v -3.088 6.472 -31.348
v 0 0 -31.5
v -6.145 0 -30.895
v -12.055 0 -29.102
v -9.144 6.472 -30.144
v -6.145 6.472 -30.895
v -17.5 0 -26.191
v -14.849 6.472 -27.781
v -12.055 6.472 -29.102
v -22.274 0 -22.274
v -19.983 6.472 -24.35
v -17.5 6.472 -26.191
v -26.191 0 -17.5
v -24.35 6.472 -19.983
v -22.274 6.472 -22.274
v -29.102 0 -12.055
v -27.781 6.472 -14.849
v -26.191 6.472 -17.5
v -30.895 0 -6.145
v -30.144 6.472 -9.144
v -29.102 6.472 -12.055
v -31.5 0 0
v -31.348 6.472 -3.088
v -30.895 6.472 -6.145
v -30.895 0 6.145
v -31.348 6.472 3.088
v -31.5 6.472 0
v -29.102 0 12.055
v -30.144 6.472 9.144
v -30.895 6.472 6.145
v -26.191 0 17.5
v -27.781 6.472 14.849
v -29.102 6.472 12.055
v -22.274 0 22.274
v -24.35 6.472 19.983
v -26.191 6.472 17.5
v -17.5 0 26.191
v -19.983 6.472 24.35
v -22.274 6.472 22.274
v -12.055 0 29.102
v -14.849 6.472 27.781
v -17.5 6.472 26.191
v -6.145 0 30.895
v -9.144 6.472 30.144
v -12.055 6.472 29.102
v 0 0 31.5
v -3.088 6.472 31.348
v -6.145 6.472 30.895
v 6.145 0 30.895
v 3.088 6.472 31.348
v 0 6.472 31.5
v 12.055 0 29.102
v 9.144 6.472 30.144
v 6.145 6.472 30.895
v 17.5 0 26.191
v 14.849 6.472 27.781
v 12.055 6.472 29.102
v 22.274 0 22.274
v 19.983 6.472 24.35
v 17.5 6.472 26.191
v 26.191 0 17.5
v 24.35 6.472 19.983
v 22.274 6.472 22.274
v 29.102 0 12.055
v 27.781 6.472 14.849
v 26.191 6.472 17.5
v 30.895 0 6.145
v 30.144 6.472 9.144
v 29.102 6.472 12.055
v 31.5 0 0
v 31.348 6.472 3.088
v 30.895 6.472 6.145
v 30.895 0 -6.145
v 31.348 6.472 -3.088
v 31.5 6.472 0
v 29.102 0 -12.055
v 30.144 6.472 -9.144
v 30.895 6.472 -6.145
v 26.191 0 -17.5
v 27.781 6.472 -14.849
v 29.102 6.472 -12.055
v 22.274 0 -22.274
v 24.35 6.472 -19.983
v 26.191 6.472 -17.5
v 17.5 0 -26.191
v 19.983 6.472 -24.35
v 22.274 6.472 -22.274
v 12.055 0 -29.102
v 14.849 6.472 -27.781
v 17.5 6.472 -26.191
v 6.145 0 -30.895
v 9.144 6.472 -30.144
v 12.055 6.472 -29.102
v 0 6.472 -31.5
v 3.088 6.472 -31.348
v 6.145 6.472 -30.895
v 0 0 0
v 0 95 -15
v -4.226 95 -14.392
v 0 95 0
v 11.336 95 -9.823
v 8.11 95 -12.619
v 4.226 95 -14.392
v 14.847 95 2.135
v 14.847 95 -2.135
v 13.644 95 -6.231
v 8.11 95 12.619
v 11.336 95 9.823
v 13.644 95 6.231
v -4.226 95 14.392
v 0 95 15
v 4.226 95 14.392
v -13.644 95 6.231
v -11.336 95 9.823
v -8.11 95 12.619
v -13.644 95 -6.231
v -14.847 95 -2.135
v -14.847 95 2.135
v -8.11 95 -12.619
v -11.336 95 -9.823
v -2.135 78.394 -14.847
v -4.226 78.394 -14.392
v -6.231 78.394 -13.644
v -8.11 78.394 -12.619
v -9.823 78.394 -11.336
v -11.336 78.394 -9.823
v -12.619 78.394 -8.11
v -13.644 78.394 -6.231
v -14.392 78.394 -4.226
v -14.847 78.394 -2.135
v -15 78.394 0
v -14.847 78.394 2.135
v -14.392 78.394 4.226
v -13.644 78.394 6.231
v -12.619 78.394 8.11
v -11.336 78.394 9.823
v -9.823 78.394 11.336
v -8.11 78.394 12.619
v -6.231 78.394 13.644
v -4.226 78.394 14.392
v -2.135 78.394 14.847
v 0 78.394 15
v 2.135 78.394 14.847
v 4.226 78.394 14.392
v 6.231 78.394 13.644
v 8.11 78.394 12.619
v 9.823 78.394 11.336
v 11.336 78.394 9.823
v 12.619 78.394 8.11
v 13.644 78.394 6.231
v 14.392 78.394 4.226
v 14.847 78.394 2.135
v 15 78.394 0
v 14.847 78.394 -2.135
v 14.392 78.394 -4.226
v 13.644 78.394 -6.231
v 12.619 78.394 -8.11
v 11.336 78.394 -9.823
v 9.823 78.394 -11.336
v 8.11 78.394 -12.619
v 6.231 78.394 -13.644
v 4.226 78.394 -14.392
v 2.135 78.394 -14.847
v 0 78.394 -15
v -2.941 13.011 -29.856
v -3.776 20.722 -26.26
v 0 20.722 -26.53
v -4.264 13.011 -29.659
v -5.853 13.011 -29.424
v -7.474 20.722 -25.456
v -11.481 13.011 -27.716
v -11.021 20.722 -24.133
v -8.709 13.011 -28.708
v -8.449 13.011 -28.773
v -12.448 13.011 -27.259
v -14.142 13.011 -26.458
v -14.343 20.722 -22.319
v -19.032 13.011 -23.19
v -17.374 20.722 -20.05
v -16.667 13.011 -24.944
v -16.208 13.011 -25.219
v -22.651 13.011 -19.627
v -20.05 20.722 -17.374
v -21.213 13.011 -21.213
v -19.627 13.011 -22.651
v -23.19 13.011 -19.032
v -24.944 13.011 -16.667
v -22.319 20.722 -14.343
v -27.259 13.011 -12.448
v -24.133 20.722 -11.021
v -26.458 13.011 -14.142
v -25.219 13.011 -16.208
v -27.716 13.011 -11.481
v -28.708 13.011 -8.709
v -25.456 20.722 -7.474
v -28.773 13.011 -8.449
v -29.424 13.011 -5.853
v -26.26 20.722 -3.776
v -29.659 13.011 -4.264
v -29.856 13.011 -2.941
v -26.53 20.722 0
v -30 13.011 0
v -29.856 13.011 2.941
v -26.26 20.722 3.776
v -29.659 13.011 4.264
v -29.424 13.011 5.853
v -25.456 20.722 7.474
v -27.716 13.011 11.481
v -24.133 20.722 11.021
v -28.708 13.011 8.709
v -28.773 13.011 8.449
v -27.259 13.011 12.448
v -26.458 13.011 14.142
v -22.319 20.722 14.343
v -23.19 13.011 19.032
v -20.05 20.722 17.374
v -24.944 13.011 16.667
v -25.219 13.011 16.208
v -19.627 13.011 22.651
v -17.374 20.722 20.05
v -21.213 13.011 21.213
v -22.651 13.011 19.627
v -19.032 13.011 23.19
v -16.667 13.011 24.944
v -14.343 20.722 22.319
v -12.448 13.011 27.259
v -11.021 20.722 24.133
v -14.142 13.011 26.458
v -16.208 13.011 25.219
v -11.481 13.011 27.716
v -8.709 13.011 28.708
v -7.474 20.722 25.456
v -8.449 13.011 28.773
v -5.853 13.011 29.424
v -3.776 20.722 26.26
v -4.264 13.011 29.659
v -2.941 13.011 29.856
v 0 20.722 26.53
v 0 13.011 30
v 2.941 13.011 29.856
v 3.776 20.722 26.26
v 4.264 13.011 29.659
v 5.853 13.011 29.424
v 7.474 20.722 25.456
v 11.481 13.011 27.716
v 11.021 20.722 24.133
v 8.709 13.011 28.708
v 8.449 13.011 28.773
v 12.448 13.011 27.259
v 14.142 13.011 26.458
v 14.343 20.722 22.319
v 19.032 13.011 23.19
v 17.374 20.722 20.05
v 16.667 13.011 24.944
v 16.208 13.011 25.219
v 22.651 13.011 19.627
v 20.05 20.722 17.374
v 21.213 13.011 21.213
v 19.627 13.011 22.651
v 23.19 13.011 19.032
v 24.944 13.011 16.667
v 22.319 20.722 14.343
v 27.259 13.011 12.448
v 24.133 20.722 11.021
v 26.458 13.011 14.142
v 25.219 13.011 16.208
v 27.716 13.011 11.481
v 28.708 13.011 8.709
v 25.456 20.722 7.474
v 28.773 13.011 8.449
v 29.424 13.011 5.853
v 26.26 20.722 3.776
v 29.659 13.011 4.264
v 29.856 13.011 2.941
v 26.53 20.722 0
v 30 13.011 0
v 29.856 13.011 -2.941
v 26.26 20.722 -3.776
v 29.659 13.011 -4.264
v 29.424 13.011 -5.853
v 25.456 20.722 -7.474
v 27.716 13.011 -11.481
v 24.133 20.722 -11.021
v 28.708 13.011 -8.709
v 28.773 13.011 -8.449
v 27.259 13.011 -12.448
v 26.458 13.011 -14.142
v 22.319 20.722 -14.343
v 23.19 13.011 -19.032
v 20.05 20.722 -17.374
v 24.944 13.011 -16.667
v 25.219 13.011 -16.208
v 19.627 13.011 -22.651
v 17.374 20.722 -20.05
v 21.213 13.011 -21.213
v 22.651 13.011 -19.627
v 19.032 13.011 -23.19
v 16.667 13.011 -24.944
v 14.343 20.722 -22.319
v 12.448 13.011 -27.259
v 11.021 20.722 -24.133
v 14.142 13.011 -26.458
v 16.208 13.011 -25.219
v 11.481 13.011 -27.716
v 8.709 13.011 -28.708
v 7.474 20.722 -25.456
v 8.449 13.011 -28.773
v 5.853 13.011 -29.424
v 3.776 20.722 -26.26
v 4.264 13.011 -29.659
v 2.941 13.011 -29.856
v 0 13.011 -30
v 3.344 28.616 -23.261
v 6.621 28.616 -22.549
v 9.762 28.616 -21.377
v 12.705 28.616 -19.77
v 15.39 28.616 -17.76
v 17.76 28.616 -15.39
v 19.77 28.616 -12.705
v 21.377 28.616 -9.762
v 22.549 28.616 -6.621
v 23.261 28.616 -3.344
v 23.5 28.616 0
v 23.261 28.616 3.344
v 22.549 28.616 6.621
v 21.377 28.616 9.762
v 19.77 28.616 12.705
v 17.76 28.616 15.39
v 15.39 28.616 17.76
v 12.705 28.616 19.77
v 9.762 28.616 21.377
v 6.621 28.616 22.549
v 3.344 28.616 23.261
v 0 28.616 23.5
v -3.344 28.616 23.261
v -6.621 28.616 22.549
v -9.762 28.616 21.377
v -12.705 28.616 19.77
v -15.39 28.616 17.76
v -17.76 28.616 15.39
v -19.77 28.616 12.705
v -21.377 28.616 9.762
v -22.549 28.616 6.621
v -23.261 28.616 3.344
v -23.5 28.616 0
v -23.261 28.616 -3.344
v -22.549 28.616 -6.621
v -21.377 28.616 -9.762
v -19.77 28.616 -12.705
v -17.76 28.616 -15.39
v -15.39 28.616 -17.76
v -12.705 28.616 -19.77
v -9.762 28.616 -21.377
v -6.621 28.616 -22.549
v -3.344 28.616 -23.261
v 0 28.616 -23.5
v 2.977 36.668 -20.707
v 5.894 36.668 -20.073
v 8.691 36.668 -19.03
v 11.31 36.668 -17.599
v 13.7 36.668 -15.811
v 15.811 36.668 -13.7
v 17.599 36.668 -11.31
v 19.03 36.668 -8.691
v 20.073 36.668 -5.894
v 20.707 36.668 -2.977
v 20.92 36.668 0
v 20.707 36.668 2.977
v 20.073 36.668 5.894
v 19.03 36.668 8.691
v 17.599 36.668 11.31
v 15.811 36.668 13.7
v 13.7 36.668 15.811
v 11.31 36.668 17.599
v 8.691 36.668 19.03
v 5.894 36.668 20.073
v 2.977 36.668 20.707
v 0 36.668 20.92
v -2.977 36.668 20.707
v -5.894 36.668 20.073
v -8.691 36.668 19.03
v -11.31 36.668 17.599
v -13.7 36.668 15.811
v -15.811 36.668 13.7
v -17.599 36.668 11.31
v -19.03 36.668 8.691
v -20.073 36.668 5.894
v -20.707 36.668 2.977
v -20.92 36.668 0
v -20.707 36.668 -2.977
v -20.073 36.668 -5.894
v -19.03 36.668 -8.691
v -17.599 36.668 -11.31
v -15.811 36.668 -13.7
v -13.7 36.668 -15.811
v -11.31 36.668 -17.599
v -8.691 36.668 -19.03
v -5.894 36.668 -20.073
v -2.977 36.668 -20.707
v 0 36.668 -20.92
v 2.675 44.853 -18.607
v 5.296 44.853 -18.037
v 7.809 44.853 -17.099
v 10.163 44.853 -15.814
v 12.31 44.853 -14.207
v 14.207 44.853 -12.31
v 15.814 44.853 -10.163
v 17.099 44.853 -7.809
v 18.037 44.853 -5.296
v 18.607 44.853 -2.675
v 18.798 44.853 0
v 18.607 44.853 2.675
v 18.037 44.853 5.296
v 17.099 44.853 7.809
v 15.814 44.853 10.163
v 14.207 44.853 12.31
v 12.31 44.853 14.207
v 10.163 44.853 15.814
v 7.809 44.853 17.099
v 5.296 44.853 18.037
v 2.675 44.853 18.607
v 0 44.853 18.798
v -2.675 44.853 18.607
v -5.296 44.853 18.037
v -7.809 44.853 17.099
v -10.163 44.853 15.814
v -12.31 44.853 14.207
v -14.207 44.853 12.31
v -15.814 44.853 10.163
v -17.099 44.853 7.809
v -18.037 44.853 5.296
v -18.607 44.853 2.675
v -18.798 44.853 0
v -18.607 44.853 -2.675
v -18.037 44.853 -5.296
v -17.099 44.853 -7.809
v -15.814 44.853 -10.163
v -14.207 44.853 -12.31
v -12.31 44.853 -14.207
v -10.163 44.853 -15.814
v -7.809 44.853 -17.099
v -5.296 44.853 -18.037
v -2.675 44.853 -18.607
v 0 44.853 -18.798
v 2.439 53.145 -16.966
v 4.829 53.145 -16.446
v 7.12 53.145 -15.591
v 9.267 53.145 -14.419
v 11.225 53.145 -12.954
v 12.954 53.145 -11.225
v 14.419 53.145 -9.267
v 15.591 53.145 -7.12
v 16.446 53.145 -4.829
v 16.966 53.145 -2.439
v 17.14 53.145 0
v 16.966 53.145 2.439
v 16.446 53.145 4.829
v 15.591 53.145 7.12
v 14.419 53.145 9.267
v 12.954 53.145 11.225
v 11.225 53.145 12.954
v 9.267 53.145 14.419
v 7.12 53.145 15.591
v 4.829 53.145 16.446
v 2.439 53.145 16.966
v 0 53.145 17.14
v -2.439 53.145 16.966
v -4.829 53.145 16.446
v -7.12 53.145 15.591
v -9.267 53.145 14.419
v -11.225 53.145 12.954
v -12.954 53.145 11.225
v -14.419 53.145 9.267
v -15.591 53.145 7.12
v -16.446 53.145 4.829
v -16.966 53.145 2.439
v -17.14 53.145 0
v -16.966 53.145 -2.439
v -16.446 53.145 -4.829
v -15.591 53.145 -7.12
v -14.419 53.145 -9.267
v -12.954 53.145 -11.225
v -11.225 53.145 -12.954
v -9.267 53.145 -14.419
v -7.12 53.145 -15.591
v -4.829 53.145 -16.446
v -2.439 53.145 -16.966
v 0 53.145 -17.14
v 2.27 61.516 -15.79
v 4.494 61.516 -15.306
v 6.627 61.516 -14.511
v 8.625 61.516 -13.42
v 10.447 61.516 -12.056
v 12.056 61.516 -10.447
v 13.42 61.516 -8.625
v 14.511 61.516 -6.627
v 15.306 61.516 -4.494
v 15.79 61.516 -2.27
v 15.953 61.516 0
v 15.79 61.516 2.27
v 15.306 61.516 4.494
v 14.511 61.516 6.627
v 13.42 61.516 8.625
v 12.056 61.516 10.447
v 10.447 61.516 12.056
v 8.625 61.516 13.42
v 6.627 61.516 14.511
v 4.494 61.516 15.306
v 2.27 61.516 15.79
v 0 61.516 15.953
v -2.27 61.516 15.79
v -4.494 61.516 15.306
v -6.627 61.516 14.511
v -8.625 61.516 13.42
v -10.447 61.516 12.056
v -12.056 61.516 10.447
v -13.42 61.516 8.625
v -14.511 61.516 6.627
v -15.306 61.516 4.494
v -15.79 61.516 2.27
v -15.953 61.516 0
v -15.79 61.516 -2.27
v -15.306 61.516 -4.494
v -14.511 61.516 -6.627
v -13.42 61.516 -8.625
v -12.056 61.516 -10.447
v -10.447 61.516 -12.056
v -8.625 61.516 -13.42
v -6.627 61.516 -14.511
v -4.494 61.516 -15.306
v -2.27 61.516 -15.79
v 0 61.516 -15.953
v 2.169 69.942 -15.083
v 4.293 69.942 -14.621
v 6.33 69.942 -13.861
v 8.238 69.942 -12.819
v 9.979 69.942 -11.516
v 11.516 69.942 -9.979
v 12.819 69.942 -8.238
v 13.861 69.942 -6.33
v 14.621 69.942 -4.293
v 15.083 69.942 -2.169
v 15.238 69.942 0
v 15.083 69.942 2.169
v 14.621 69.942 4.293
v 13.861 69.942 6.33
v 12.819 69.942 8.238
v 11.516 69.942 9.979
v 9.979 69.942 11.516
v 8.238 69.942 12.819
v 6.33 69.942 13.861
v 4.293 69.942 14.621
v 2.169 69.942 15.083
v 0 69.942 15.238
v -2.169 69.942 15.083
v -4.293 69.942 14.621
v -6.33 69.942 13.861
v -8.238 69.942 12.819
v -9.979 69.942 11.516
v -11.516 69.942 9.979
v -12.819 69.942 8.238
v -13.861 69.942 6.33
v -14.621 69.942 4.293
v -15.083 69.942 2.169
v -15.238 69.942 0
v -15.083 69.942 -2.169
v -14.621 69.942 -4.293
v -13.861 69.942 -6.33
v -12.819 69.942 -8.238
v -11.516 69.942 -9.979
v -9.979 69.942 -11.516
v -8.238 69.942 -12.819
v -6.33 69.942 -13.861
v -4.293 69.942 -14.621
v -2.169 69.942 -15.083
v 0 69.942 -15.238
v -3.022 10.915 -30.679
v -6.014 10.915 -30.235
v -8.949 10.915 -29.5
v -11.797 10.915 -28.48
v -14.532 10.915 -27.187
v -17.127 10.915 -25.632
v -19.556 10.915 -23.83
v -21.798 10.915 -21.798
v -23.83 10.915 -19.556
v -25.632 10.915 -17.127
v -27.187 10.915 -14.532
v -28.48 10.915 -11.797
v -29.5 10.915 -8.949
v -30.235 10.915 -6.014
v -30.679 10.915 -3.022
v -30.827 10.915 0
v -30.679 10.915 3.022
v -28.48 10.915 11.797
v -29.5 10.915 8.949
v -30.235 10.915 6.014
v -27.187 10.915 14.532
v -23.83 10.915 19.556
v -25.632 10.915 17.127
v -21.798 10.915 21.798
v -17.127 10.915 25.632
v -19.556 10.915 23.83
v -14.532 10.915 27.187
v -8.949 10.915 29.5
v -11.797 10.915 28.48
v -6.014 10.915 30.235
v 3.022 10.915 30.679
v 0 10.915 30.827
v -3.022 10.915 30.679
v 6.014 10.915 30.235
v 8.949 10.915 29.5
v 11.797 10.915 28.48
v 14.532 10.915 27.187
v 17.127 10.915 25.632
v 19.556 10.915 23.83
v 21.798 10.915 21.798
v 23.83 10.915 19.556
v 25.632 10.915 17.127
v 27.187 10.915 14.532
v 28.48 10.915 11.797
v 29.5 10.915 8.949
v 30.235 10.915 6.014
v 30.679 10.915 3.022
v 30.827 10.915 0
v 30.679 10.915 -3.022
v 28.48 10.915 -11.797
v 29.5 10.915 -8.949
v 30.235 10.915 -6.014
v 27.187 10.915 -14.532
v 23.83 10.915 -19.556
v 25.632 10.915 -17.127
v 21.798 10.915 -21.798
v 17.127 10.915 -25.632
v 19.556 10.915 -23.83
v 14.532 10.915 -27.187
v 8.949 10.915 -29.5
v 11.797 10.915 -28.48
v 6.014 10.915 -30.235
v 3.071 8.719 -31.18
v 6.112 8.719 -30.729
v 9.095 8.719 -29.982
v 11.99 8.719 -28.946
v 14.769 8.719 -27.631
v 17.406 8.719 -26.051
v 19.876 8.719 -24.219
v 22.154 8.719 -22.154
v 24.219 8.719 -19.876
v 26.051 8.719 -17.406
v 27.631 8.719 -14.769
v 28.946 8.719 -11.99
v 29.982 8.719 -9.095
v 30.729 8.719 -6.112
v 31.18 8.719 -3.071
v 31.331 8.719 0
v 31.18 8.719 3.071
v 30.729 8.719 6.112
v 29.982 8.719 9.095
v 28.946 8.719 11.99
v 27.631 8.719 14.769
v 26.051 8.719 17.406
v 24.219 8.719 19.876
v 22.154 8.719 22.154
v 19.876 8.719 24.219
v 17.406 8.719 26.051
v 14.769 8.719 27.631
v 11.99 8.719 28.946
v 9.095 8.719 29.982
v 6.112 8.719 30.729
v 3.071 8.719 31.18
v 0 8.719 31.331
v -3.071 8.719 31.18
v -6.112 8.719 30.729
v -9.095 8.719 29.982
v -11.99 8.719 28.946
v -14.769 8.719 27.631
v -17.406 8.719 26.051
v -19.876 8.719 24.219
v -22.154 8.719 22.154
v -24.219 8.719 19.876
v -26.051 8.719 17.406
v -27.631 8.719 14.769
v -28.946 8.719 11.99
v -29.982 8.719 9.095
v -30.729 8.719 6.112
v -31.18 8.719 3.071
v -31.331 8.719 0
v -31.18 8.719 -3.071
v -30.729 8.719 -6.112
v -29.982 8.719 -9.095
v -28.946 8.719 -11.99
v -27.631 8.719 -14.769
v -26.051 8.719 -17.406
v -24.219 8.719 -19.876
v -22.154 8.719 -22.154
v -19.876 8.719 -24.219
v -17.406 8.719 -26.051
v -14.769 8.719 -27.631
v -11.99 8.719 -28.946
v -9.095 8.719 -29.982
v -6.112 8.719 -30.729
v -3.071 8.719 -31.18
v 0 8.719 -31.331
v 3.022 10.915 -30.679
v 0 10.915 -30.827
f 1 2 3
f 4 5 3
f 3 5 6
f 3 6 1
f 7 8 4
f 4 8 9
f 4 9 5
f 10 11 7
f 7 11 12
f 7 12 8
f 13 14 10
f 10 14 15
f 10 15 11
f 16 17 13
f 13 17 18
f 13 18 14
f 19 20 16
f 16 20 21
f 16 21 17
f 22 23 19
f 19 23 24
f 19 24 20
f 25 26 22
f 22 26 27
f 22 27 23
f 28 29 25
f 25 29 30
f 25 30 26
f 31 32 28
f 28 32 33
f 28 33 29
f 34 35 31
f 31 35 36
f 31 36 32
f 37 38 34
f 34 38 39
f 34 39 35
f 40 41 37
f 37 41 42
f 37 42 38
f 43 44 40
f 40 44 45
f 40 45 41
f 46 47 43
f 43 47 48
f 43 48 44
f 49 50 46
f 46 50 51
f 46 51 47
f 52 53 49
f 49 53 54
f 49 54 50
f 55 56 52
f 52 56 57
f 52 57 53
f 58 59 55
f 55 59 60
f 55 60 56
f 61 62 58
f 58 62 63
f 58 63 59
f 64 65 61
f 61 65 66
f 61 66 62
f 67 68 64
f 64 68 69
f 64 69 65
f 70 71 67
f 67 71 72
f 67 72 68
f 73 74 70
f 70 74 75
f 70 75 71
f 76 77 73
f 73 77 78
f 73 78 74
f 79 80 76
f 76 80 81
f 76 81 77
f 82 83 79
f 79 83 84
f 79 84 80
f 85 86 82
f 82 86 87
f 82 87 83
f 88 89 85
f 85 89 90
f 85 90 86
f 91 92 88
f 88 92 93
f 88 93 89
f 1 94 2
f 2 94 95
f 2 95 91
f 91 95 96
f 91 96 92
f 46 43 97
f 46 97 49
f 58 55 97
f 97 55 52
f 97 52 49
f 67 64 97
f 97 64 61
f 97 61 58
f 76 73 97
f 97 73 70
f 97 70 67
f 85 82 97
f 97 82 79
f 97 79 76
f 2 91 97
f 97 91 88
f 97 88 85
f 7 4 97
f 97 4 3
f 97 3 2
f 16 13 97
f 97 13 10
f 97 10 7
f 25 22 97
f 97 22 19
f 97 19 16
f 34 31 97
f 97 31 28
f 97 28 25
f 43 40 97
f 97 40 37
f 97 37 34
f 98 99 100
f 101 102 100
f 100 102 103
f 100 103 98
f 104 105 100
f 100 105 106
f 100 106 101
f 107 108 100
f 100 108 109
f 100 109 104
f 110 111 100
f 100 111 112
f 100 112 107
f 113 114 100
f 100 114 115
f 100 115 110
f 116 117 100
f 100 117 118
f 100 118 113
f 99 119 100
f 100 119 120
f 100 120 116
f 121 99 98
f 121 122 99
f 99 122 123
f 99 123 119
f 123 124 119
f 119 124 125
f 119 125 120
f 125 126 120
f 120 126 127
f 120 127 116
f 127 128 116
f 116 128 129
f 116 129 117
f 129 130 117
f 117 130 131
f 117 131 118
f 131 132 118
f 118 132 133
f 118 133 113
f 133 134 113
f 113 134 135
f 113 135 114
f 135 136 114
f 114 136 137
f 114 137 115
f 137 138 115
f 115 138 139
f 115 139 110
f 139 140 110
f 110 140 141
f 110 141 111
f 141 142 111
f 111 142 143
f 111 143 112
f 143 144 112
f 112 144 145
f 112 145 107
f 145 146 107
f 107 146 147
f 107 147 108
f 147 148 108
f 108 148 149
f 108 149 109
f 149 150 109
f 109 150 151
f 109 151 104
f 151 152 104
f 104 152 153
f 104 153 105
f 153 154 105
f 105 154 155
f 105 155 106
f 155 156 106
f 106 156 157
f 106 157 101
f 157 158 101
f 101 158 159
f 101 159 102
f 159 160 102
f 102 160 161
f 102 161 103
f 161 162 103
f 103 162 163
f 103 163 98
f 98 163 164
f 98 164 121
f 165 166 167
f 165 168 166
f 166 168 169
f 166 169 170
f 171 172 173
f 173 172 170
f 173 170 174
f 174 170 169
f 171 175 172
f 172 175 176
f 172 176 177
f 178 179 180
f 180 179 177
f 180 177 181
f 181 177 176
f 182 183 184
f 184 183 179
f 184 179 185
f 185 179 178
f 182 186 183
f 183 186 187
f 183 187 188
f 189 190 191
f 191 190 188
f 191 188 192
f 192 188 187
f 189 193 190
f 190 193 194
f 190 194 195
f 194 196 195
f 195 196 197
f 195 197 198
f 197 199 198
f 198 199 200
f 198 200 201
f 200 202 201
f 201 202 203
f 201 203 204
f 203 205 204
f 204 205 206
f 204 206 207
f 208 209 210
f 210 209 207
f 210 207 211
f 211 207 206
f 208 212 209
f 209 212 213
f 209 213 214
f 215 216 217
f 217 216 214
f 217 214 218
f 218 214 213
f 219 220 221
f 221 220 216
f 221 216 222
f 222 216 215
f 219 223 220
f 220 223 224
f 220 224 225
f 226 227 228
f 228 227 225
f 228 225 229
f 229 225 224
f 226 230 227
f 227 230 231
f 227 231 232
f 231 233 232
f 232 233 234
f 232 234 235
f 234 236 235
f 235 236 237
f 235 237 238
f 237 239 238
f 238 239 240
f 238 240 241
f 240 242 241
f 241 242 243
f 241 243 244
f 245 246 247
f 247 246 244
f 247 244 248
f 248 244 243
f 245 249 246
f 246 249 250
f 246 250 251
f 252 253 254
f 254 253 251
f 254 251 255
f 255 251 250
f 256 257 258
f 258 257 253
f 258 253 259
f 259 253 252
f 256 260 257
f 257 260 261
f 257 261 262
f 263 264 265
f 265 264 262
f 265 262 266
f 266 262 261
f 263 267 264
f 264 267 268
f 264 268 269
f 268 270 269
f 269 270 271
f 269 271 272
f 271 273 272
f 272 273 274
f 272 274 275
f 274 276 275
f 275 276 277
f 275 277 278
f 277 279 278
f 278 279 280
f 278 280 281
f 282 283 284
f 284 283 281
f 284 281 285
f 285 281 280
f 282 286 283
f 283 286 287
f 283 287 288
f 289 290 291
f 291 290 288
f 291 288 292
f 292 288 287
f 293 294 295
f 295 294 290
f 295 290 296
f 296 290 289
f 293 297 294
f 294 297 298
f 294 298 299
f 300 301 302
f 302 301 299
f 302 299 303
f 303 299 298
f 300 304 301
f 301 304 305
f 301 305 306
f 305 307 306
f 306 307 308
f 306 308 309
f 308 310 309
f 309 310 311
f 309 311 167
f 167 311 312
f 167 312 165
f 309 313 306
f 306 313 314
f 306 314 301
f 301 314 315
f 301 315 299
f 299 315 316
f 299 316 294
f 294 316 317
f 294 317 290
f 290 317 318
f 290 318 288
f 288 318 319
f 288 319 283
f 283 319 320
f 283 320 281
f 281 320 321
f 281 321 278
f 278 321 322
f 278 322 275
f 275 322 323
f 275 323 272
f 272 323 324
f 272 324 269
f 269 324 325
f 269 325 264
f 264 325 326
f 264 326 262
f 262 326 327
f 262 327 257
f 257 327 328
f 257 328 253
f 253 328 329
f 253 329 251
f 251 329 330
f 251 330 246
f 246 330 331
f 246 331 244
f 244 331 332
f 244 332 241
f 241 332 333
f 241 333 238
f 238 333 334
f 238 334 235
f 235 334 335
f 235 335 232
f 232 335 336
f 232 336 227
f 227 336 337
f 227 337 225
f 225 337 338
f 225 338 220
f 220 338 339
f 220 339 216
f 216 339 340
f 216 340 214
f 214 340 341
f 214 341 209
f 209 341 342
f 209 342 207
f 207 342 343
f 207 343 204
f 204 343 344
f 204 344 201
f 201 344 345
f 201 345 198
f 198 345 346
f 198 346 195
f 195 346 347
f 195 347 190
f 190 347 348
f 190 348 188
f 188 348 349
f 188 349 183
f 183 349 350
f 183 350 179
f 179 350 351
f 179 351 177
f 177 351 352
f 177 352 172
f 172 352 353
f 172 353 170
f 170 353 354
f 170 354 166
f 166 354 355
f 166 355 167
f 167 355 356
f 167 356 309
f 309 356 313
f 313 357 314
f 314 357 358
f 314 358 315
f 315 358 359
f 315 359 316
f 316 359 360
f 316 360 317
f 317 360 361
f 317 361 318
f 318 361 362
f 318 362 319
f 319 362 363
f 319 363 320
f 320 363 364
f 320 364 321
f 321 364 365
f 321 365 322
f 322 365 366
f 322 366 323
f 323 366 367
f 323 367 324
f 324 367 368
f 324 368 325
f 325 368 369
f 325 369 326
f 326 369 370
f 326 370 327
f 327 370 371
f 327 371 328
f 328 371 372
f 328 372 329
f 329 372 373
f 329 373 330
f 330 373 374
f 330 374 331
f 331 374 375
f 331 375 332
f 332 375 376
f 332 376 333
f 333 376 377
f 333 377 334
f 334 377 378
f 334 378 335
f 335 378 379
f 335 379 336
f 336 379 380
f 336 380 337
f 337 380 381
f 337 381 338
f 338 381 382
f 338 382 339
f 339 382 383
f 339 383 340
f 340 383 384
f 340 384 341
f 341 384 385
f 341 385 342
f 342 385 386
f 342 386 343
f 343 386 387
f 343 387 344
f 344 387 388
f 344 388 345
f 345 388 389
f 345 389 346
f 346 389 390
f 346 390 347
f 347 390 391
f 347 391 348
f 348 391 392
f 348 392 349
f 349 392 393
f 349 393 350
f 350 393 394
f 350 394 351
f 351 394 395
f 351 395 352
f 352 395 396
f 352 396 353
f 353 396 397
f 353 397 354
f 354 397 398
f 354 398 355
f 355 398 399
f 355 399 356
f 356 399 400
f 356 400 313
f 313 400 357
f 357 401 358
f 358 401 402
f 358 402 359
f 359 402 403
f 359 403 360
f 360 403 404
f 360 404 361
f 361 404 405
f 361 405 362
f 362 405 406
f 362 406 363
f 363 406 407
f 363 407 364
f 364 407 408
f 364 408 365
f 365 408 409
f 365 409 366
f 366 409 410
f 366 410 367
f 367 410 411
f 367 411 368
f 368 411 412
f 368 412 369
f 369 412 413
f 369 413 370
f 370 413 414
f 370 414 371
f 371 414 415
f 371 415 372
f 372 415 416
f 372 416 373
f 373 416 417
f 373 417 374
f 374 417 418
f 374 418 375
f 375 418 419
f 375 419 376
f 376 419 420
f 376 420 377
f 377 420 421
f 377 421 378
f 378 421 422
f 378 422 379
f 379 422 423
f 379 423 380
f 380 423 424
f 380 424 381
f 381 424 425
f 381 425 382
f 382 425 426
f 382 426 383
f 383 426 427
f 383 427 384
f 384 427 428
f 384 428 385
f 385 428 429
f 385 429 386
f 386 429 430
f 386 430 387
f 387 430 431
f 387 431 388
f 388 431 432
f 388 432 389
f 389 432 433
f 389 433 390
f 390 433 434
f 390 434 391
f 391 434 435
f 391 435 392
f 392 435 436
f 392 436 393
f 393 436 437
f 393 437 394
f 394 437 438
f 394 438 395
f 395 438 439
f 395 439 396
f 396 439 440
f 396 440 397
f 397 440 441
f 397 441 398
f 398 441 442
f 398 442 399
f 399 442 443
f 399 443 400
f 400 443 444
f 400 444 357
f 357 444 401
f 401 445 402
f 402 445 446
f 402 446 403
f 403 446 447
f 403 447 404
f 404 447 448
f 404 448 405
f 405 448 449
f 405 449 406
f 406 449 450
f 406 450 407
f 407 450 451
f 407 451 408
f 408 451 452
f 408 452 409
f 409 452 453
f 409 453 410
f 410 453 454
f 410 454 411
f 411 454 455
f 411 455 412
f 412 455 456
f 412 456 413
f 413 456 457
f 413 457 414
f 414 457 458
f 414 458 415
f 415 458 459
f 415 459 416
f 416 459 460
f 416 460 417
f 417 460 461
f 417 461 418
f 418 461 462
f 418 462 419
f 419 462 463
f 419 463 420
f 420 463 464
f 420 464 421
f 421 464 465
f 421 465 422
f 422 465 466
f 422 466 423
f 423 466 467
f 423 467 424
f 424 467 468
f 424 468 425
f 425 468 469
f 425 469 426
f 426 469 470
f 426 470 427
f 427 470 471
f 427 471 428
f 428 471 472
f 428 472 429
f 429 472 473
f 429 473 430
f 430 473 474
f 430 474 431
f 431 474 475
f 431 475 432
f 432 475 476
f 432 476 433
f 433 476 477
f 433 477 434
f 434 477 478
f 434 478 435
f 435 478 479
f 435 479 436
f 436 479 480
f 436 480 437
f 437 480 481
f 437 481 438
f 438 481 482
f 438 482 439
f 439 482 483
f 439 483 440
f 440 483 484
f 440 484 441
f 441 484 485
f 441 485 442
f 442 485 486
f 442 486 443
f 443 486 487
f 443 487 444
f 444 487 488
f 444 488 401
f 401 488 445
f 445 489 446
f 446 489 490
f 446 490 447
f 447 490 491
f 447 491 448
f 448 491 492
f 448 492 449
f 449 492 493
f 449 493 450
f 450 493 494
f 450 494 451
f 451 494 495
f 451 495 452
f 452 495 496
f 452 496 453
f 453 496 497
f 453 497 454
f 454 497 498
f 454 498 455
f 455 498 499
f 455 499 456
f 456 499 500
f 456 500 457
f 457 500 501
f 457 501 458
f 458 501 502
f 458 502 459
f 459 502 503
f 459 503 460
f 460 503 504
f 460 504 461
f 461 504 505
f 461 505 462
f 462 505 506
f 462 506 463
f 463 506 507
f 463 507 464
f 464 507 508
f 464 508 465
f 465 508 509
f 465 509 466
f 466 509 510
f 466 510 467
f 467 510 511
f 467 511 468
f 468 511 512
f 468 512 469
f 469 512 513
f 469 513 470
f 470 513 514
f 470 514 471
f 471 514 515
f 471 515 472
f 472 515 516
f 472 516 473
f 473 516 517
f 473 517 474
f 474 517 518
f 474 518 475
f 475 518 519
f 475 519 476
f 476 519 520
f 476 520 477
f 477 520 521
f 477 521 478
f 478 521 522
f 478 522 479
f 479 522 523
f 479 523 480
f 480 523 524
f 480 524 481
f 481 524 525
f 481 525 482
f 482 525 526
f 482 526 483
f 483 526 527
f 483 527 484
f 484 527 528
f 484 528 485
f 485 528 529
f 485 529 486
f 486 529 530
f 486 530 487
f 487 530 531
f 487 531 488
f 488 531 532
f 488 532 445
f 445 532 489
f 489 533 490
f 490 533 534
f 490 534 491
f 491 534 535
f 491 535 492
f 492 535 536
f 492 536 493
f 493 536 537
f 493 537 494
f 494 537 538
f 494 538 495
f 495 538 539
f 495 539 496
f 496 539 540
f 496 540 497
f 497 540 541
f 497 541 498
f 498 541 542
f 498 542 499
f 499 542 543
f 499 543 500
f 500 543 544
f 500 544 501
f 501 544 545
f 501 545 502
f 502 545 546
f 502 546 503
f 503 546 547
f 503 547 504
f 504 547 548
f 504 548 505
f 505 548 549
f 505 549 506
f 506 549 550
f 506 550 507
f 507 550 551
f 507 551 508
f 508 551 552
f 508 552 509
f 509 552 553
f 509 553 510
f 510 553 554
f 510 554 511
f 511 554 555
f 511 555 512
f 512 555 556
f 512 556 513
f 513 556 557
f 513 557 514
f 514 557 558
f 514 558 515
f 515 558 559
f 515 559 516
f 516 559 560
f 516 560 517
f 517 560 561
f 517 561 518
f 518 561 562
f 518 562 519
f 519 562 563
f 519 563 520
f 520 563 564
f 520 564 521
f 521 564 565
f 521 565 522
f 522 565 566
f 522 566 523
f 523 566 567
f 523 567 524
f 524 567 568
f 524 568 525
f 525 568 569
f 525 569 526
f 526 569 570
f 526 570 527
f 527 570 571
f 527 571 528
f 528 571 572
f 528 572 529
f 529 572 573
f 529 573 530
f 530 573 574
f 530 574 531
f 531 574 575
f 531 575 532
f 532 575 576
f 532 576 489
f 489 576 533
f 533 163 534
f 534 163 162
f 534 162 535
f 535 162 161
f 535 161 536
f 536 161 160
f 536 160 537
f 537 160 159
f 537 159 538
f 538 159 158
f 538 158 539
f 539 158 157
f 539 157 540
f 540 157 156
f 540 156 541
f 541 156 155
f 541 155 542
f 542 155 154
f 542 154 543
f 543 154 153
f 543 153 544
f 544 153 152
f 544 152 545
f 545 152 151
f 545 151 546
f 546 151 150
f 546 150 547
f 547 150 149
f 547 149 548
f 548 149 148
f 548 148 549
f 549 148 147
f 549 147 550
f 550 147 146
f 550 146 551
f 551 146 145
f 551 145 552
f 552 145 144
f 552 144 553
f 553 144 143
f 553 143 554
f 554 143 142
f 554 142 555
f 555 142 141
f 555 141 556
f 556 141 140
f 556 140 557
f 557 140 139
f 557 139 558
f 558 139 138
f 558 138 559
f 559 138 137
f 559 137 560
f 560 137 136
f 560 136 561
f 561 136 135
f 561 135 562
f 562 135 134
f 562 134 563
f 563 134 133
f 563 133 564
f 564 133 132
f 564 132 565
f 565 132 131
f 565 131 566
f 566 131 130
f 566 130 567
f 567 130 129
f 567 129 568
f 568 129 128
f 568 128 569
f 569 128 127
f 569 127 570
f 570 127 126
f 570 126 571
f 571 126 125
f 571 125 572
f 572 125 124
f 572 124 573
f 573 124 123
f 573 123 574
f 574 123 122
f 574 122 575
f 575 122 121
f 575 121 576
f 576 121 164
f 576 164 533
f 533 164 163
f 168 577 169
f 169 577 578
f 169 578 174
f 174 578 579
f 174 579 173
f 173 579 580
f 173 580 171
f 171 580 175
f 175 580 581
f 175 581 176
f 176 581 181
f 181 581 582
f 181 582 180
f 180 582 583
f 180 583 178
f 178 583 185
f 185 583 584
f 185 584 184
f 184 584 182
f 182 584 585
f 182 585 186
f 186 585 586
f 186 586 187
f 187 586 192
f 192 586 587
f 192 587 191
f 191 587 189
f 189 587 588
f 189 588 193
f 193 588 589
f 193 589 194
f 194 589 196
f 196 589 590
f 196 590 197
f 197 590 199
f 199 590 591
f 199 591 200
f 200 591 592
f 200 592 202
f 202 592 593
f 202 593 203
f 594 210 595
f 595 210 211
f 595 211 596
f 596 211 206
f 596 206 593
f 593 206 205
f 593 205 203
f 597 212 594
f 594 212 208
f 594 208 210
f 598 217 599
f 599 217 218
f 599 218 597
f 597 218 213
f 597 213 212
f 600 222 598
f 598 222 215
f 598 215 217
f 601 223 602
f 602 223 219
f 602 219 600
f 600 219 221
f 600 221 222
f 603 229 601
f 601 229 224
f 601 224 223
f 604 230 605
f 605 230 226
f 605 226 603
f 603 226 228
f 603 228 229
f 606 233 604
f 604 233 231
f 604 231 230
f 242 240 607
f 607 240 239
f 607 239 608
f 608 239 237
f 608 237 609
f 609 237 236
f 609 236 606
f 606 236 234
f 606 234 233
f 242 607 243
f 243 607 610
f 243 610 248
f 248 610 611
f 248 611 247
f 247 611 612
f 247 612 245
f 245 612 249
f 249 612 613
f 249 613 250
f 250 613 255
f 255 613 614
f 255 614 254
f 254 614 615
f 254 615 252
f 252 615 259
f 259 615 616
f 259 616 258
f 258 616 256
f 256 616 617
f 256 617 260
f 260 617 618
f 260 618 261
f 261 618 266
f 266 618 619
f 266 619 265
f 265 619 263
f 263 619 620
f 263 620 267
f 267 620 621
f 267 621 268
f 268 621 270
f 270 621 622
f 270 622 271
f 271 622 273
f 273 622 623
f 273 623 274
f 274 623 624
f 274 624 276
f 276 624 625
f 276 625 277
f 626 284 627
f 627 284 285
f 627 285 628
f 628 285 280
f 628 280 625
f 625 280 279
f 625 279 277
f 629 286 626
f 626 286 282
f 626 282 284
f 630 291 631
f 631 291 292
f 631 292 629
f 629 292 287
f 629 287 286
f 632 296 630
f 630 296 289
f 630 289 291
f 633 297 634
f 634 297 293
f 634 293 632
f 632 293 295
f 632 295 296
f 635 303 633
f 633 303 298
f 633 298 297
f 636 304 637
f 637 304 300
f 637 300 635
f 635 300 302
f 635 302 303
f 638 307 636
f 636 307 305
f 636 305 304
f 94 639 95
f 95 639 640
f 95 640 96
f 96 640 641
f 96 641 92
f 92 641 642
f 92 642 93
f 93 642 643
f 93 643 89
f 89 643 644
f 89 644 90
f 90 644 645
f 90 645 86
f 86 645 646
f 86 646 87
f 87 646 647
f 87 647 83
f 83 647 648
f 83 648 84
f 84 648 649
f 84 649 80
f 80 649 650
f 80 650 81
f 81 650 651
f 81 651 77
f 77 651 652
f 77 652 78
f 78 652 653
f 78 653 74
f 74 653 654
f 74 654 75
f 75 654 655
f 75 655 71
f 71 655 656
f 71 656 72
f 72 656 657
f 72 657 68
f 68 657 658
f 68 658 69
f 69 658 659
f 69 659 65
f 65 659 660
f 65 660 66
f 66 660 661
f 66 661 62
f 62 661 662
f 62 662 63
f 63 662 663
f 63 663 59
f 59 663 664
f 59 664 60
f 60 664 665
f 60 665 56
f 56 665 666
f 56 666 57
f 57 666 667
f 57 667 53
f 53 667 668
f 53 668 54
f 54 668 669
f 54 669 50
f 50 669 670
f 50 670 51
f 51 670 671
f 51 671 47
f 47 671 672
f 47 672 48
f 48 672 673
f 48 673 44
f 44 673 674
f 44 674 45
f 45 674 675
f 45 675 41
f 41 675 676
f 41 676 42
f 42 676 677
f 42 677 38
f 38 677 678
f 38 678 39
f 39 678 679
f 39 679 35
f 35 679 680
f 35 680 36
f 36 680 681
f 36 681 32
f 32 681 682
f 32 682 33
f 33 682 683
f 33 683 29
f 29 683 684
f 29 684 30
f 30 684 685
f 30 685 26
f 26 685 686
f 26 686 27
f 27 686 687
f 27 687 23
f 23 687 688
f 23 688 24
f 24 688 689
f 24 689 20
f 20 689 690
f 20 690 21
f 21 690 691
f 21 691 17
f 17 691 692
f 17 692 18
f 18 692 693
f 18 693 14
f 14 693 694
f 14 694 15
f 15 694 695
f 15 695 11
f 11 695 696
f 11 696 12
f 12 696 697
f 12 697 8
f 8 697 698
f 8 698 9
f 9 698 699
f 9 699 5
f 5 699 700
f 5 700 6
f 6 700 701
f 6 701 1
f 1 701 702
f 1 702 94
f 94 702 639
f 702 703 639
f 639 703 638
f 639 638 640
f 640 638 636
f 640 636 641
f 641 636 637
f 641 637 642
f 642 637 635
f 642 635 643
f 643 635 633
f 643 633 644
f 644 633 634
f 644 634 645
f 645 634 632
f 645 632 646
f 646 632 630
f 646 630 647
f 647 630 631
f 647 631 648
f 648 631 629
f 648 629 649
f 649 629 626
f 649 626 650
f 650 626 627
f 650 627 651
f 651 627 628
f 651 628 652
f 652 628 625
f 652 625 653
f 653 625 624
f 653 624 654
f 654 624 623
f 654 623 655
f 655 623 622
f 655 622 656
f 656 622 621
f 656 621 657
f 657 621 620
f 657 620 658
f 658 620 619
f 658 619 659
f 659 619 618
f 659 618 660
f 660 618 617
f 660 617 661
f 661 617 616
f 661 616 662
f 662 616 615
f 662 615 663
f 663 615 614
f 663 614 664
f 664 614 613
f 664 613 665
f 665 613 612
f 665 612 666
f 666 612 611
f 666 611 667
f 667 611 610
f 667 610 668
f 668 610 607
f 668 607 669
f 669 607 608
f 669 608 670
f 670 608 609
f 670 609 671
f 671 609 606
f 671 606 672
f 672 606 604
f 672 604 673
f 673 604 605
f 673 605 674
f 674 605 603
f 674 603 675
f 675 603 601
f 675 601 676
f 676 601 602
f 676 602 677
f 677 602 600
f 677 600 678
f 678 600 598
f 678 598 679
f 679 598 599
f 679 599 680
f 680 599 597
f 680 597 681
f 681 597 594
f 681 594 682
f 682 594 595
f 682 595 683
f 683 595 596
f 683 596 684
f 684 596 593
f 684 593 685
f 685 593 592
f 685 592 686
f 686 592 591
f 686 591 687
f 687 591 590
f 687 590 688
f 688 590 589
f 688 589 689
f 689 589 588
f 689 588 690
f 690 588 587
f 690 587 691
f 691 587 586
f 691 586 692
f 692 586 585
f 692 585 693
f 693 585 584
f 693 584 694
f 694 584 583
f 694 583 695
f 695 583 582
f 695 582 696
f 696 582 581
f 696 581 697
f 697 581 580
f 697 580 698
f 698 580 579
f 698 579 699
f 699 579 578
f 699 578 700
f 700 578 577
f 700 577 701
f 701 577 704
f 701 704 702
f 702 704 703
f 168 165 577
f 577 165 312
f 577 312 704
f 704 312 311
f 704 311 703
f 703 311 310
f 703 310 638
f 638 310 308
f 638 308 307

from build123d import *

# Parameters (mm, degrees)
SKETCH_1_R      = 31.5
EXTRUDE_1_DEPTH = 10
FILLET_1_R      = 150
FILLET_3_R      = 15


with BuildPart() as part:
    # 草图1 → 凸台-拉伸1 (new body)
    with BuildSketch(Plane(origin=(0, 0, 0), x_dir=(1, 0, 0), z_dir=(0, 1, 0))):
        with Locations(Location((0, 0, 0), (0, 0, 270))):
            Circle(SKETCH_1_R)
    extrude(amount=EXTRUDE_1_DEPTH)

    # 草图3 → 旋转1 (revolve)
    with BuildSketch(Plane.XY, mode=Mode.PRIVATE) as revolve_1_sk:
        Polygon((0, 95), (15, 95), (15, 25), (31.5, 10), (0, 10), align=None)
    revolve(revolve_1_sk.sketch.rotate(Axis((0, 0, 0), (0, 1, 0)), 90), axis=Axis((0, 0, 0), (0, 1, 0)))

    # 圆角1
    # the kernel refuses this fillet: 150 mm, written as the material it adds along each edge
    with BuildSketch(Plane(origin=(0, 25, 0), x_dir=(0, 0, -1), z_dir=(1, 0, 0))) as fillet_1_piece_1:
        with BuildLine():
            CenterArc((165, 53.394078691), FILLET_1_R, 180, 27.126753117)
            Line((15, 53.394078691), (12, 53.394078691))
            Line((12, 53.394078691), (12, 0))
            Line((12, 0), (12.981981618, -2.21982022))
            ThreePointArc((12.981981618, -2.21982022), (21.231981618, -9.71982022), (28.83, -16.367881574))
            Line((28.83, -16.367881574), (31.5, -15))
        make_face()
    revolve(axis=Axis((0, 25, 0), (0, 1, 0)))

    # 圆角3
    fillet_3_edges = [part.edges().sort_by_distance(p)[0] for p in [
        (-31.5, 10, 0),
    ]]
    fillet(fillet_3_edges, radius=FILLET_3_R)


solid = part.part
